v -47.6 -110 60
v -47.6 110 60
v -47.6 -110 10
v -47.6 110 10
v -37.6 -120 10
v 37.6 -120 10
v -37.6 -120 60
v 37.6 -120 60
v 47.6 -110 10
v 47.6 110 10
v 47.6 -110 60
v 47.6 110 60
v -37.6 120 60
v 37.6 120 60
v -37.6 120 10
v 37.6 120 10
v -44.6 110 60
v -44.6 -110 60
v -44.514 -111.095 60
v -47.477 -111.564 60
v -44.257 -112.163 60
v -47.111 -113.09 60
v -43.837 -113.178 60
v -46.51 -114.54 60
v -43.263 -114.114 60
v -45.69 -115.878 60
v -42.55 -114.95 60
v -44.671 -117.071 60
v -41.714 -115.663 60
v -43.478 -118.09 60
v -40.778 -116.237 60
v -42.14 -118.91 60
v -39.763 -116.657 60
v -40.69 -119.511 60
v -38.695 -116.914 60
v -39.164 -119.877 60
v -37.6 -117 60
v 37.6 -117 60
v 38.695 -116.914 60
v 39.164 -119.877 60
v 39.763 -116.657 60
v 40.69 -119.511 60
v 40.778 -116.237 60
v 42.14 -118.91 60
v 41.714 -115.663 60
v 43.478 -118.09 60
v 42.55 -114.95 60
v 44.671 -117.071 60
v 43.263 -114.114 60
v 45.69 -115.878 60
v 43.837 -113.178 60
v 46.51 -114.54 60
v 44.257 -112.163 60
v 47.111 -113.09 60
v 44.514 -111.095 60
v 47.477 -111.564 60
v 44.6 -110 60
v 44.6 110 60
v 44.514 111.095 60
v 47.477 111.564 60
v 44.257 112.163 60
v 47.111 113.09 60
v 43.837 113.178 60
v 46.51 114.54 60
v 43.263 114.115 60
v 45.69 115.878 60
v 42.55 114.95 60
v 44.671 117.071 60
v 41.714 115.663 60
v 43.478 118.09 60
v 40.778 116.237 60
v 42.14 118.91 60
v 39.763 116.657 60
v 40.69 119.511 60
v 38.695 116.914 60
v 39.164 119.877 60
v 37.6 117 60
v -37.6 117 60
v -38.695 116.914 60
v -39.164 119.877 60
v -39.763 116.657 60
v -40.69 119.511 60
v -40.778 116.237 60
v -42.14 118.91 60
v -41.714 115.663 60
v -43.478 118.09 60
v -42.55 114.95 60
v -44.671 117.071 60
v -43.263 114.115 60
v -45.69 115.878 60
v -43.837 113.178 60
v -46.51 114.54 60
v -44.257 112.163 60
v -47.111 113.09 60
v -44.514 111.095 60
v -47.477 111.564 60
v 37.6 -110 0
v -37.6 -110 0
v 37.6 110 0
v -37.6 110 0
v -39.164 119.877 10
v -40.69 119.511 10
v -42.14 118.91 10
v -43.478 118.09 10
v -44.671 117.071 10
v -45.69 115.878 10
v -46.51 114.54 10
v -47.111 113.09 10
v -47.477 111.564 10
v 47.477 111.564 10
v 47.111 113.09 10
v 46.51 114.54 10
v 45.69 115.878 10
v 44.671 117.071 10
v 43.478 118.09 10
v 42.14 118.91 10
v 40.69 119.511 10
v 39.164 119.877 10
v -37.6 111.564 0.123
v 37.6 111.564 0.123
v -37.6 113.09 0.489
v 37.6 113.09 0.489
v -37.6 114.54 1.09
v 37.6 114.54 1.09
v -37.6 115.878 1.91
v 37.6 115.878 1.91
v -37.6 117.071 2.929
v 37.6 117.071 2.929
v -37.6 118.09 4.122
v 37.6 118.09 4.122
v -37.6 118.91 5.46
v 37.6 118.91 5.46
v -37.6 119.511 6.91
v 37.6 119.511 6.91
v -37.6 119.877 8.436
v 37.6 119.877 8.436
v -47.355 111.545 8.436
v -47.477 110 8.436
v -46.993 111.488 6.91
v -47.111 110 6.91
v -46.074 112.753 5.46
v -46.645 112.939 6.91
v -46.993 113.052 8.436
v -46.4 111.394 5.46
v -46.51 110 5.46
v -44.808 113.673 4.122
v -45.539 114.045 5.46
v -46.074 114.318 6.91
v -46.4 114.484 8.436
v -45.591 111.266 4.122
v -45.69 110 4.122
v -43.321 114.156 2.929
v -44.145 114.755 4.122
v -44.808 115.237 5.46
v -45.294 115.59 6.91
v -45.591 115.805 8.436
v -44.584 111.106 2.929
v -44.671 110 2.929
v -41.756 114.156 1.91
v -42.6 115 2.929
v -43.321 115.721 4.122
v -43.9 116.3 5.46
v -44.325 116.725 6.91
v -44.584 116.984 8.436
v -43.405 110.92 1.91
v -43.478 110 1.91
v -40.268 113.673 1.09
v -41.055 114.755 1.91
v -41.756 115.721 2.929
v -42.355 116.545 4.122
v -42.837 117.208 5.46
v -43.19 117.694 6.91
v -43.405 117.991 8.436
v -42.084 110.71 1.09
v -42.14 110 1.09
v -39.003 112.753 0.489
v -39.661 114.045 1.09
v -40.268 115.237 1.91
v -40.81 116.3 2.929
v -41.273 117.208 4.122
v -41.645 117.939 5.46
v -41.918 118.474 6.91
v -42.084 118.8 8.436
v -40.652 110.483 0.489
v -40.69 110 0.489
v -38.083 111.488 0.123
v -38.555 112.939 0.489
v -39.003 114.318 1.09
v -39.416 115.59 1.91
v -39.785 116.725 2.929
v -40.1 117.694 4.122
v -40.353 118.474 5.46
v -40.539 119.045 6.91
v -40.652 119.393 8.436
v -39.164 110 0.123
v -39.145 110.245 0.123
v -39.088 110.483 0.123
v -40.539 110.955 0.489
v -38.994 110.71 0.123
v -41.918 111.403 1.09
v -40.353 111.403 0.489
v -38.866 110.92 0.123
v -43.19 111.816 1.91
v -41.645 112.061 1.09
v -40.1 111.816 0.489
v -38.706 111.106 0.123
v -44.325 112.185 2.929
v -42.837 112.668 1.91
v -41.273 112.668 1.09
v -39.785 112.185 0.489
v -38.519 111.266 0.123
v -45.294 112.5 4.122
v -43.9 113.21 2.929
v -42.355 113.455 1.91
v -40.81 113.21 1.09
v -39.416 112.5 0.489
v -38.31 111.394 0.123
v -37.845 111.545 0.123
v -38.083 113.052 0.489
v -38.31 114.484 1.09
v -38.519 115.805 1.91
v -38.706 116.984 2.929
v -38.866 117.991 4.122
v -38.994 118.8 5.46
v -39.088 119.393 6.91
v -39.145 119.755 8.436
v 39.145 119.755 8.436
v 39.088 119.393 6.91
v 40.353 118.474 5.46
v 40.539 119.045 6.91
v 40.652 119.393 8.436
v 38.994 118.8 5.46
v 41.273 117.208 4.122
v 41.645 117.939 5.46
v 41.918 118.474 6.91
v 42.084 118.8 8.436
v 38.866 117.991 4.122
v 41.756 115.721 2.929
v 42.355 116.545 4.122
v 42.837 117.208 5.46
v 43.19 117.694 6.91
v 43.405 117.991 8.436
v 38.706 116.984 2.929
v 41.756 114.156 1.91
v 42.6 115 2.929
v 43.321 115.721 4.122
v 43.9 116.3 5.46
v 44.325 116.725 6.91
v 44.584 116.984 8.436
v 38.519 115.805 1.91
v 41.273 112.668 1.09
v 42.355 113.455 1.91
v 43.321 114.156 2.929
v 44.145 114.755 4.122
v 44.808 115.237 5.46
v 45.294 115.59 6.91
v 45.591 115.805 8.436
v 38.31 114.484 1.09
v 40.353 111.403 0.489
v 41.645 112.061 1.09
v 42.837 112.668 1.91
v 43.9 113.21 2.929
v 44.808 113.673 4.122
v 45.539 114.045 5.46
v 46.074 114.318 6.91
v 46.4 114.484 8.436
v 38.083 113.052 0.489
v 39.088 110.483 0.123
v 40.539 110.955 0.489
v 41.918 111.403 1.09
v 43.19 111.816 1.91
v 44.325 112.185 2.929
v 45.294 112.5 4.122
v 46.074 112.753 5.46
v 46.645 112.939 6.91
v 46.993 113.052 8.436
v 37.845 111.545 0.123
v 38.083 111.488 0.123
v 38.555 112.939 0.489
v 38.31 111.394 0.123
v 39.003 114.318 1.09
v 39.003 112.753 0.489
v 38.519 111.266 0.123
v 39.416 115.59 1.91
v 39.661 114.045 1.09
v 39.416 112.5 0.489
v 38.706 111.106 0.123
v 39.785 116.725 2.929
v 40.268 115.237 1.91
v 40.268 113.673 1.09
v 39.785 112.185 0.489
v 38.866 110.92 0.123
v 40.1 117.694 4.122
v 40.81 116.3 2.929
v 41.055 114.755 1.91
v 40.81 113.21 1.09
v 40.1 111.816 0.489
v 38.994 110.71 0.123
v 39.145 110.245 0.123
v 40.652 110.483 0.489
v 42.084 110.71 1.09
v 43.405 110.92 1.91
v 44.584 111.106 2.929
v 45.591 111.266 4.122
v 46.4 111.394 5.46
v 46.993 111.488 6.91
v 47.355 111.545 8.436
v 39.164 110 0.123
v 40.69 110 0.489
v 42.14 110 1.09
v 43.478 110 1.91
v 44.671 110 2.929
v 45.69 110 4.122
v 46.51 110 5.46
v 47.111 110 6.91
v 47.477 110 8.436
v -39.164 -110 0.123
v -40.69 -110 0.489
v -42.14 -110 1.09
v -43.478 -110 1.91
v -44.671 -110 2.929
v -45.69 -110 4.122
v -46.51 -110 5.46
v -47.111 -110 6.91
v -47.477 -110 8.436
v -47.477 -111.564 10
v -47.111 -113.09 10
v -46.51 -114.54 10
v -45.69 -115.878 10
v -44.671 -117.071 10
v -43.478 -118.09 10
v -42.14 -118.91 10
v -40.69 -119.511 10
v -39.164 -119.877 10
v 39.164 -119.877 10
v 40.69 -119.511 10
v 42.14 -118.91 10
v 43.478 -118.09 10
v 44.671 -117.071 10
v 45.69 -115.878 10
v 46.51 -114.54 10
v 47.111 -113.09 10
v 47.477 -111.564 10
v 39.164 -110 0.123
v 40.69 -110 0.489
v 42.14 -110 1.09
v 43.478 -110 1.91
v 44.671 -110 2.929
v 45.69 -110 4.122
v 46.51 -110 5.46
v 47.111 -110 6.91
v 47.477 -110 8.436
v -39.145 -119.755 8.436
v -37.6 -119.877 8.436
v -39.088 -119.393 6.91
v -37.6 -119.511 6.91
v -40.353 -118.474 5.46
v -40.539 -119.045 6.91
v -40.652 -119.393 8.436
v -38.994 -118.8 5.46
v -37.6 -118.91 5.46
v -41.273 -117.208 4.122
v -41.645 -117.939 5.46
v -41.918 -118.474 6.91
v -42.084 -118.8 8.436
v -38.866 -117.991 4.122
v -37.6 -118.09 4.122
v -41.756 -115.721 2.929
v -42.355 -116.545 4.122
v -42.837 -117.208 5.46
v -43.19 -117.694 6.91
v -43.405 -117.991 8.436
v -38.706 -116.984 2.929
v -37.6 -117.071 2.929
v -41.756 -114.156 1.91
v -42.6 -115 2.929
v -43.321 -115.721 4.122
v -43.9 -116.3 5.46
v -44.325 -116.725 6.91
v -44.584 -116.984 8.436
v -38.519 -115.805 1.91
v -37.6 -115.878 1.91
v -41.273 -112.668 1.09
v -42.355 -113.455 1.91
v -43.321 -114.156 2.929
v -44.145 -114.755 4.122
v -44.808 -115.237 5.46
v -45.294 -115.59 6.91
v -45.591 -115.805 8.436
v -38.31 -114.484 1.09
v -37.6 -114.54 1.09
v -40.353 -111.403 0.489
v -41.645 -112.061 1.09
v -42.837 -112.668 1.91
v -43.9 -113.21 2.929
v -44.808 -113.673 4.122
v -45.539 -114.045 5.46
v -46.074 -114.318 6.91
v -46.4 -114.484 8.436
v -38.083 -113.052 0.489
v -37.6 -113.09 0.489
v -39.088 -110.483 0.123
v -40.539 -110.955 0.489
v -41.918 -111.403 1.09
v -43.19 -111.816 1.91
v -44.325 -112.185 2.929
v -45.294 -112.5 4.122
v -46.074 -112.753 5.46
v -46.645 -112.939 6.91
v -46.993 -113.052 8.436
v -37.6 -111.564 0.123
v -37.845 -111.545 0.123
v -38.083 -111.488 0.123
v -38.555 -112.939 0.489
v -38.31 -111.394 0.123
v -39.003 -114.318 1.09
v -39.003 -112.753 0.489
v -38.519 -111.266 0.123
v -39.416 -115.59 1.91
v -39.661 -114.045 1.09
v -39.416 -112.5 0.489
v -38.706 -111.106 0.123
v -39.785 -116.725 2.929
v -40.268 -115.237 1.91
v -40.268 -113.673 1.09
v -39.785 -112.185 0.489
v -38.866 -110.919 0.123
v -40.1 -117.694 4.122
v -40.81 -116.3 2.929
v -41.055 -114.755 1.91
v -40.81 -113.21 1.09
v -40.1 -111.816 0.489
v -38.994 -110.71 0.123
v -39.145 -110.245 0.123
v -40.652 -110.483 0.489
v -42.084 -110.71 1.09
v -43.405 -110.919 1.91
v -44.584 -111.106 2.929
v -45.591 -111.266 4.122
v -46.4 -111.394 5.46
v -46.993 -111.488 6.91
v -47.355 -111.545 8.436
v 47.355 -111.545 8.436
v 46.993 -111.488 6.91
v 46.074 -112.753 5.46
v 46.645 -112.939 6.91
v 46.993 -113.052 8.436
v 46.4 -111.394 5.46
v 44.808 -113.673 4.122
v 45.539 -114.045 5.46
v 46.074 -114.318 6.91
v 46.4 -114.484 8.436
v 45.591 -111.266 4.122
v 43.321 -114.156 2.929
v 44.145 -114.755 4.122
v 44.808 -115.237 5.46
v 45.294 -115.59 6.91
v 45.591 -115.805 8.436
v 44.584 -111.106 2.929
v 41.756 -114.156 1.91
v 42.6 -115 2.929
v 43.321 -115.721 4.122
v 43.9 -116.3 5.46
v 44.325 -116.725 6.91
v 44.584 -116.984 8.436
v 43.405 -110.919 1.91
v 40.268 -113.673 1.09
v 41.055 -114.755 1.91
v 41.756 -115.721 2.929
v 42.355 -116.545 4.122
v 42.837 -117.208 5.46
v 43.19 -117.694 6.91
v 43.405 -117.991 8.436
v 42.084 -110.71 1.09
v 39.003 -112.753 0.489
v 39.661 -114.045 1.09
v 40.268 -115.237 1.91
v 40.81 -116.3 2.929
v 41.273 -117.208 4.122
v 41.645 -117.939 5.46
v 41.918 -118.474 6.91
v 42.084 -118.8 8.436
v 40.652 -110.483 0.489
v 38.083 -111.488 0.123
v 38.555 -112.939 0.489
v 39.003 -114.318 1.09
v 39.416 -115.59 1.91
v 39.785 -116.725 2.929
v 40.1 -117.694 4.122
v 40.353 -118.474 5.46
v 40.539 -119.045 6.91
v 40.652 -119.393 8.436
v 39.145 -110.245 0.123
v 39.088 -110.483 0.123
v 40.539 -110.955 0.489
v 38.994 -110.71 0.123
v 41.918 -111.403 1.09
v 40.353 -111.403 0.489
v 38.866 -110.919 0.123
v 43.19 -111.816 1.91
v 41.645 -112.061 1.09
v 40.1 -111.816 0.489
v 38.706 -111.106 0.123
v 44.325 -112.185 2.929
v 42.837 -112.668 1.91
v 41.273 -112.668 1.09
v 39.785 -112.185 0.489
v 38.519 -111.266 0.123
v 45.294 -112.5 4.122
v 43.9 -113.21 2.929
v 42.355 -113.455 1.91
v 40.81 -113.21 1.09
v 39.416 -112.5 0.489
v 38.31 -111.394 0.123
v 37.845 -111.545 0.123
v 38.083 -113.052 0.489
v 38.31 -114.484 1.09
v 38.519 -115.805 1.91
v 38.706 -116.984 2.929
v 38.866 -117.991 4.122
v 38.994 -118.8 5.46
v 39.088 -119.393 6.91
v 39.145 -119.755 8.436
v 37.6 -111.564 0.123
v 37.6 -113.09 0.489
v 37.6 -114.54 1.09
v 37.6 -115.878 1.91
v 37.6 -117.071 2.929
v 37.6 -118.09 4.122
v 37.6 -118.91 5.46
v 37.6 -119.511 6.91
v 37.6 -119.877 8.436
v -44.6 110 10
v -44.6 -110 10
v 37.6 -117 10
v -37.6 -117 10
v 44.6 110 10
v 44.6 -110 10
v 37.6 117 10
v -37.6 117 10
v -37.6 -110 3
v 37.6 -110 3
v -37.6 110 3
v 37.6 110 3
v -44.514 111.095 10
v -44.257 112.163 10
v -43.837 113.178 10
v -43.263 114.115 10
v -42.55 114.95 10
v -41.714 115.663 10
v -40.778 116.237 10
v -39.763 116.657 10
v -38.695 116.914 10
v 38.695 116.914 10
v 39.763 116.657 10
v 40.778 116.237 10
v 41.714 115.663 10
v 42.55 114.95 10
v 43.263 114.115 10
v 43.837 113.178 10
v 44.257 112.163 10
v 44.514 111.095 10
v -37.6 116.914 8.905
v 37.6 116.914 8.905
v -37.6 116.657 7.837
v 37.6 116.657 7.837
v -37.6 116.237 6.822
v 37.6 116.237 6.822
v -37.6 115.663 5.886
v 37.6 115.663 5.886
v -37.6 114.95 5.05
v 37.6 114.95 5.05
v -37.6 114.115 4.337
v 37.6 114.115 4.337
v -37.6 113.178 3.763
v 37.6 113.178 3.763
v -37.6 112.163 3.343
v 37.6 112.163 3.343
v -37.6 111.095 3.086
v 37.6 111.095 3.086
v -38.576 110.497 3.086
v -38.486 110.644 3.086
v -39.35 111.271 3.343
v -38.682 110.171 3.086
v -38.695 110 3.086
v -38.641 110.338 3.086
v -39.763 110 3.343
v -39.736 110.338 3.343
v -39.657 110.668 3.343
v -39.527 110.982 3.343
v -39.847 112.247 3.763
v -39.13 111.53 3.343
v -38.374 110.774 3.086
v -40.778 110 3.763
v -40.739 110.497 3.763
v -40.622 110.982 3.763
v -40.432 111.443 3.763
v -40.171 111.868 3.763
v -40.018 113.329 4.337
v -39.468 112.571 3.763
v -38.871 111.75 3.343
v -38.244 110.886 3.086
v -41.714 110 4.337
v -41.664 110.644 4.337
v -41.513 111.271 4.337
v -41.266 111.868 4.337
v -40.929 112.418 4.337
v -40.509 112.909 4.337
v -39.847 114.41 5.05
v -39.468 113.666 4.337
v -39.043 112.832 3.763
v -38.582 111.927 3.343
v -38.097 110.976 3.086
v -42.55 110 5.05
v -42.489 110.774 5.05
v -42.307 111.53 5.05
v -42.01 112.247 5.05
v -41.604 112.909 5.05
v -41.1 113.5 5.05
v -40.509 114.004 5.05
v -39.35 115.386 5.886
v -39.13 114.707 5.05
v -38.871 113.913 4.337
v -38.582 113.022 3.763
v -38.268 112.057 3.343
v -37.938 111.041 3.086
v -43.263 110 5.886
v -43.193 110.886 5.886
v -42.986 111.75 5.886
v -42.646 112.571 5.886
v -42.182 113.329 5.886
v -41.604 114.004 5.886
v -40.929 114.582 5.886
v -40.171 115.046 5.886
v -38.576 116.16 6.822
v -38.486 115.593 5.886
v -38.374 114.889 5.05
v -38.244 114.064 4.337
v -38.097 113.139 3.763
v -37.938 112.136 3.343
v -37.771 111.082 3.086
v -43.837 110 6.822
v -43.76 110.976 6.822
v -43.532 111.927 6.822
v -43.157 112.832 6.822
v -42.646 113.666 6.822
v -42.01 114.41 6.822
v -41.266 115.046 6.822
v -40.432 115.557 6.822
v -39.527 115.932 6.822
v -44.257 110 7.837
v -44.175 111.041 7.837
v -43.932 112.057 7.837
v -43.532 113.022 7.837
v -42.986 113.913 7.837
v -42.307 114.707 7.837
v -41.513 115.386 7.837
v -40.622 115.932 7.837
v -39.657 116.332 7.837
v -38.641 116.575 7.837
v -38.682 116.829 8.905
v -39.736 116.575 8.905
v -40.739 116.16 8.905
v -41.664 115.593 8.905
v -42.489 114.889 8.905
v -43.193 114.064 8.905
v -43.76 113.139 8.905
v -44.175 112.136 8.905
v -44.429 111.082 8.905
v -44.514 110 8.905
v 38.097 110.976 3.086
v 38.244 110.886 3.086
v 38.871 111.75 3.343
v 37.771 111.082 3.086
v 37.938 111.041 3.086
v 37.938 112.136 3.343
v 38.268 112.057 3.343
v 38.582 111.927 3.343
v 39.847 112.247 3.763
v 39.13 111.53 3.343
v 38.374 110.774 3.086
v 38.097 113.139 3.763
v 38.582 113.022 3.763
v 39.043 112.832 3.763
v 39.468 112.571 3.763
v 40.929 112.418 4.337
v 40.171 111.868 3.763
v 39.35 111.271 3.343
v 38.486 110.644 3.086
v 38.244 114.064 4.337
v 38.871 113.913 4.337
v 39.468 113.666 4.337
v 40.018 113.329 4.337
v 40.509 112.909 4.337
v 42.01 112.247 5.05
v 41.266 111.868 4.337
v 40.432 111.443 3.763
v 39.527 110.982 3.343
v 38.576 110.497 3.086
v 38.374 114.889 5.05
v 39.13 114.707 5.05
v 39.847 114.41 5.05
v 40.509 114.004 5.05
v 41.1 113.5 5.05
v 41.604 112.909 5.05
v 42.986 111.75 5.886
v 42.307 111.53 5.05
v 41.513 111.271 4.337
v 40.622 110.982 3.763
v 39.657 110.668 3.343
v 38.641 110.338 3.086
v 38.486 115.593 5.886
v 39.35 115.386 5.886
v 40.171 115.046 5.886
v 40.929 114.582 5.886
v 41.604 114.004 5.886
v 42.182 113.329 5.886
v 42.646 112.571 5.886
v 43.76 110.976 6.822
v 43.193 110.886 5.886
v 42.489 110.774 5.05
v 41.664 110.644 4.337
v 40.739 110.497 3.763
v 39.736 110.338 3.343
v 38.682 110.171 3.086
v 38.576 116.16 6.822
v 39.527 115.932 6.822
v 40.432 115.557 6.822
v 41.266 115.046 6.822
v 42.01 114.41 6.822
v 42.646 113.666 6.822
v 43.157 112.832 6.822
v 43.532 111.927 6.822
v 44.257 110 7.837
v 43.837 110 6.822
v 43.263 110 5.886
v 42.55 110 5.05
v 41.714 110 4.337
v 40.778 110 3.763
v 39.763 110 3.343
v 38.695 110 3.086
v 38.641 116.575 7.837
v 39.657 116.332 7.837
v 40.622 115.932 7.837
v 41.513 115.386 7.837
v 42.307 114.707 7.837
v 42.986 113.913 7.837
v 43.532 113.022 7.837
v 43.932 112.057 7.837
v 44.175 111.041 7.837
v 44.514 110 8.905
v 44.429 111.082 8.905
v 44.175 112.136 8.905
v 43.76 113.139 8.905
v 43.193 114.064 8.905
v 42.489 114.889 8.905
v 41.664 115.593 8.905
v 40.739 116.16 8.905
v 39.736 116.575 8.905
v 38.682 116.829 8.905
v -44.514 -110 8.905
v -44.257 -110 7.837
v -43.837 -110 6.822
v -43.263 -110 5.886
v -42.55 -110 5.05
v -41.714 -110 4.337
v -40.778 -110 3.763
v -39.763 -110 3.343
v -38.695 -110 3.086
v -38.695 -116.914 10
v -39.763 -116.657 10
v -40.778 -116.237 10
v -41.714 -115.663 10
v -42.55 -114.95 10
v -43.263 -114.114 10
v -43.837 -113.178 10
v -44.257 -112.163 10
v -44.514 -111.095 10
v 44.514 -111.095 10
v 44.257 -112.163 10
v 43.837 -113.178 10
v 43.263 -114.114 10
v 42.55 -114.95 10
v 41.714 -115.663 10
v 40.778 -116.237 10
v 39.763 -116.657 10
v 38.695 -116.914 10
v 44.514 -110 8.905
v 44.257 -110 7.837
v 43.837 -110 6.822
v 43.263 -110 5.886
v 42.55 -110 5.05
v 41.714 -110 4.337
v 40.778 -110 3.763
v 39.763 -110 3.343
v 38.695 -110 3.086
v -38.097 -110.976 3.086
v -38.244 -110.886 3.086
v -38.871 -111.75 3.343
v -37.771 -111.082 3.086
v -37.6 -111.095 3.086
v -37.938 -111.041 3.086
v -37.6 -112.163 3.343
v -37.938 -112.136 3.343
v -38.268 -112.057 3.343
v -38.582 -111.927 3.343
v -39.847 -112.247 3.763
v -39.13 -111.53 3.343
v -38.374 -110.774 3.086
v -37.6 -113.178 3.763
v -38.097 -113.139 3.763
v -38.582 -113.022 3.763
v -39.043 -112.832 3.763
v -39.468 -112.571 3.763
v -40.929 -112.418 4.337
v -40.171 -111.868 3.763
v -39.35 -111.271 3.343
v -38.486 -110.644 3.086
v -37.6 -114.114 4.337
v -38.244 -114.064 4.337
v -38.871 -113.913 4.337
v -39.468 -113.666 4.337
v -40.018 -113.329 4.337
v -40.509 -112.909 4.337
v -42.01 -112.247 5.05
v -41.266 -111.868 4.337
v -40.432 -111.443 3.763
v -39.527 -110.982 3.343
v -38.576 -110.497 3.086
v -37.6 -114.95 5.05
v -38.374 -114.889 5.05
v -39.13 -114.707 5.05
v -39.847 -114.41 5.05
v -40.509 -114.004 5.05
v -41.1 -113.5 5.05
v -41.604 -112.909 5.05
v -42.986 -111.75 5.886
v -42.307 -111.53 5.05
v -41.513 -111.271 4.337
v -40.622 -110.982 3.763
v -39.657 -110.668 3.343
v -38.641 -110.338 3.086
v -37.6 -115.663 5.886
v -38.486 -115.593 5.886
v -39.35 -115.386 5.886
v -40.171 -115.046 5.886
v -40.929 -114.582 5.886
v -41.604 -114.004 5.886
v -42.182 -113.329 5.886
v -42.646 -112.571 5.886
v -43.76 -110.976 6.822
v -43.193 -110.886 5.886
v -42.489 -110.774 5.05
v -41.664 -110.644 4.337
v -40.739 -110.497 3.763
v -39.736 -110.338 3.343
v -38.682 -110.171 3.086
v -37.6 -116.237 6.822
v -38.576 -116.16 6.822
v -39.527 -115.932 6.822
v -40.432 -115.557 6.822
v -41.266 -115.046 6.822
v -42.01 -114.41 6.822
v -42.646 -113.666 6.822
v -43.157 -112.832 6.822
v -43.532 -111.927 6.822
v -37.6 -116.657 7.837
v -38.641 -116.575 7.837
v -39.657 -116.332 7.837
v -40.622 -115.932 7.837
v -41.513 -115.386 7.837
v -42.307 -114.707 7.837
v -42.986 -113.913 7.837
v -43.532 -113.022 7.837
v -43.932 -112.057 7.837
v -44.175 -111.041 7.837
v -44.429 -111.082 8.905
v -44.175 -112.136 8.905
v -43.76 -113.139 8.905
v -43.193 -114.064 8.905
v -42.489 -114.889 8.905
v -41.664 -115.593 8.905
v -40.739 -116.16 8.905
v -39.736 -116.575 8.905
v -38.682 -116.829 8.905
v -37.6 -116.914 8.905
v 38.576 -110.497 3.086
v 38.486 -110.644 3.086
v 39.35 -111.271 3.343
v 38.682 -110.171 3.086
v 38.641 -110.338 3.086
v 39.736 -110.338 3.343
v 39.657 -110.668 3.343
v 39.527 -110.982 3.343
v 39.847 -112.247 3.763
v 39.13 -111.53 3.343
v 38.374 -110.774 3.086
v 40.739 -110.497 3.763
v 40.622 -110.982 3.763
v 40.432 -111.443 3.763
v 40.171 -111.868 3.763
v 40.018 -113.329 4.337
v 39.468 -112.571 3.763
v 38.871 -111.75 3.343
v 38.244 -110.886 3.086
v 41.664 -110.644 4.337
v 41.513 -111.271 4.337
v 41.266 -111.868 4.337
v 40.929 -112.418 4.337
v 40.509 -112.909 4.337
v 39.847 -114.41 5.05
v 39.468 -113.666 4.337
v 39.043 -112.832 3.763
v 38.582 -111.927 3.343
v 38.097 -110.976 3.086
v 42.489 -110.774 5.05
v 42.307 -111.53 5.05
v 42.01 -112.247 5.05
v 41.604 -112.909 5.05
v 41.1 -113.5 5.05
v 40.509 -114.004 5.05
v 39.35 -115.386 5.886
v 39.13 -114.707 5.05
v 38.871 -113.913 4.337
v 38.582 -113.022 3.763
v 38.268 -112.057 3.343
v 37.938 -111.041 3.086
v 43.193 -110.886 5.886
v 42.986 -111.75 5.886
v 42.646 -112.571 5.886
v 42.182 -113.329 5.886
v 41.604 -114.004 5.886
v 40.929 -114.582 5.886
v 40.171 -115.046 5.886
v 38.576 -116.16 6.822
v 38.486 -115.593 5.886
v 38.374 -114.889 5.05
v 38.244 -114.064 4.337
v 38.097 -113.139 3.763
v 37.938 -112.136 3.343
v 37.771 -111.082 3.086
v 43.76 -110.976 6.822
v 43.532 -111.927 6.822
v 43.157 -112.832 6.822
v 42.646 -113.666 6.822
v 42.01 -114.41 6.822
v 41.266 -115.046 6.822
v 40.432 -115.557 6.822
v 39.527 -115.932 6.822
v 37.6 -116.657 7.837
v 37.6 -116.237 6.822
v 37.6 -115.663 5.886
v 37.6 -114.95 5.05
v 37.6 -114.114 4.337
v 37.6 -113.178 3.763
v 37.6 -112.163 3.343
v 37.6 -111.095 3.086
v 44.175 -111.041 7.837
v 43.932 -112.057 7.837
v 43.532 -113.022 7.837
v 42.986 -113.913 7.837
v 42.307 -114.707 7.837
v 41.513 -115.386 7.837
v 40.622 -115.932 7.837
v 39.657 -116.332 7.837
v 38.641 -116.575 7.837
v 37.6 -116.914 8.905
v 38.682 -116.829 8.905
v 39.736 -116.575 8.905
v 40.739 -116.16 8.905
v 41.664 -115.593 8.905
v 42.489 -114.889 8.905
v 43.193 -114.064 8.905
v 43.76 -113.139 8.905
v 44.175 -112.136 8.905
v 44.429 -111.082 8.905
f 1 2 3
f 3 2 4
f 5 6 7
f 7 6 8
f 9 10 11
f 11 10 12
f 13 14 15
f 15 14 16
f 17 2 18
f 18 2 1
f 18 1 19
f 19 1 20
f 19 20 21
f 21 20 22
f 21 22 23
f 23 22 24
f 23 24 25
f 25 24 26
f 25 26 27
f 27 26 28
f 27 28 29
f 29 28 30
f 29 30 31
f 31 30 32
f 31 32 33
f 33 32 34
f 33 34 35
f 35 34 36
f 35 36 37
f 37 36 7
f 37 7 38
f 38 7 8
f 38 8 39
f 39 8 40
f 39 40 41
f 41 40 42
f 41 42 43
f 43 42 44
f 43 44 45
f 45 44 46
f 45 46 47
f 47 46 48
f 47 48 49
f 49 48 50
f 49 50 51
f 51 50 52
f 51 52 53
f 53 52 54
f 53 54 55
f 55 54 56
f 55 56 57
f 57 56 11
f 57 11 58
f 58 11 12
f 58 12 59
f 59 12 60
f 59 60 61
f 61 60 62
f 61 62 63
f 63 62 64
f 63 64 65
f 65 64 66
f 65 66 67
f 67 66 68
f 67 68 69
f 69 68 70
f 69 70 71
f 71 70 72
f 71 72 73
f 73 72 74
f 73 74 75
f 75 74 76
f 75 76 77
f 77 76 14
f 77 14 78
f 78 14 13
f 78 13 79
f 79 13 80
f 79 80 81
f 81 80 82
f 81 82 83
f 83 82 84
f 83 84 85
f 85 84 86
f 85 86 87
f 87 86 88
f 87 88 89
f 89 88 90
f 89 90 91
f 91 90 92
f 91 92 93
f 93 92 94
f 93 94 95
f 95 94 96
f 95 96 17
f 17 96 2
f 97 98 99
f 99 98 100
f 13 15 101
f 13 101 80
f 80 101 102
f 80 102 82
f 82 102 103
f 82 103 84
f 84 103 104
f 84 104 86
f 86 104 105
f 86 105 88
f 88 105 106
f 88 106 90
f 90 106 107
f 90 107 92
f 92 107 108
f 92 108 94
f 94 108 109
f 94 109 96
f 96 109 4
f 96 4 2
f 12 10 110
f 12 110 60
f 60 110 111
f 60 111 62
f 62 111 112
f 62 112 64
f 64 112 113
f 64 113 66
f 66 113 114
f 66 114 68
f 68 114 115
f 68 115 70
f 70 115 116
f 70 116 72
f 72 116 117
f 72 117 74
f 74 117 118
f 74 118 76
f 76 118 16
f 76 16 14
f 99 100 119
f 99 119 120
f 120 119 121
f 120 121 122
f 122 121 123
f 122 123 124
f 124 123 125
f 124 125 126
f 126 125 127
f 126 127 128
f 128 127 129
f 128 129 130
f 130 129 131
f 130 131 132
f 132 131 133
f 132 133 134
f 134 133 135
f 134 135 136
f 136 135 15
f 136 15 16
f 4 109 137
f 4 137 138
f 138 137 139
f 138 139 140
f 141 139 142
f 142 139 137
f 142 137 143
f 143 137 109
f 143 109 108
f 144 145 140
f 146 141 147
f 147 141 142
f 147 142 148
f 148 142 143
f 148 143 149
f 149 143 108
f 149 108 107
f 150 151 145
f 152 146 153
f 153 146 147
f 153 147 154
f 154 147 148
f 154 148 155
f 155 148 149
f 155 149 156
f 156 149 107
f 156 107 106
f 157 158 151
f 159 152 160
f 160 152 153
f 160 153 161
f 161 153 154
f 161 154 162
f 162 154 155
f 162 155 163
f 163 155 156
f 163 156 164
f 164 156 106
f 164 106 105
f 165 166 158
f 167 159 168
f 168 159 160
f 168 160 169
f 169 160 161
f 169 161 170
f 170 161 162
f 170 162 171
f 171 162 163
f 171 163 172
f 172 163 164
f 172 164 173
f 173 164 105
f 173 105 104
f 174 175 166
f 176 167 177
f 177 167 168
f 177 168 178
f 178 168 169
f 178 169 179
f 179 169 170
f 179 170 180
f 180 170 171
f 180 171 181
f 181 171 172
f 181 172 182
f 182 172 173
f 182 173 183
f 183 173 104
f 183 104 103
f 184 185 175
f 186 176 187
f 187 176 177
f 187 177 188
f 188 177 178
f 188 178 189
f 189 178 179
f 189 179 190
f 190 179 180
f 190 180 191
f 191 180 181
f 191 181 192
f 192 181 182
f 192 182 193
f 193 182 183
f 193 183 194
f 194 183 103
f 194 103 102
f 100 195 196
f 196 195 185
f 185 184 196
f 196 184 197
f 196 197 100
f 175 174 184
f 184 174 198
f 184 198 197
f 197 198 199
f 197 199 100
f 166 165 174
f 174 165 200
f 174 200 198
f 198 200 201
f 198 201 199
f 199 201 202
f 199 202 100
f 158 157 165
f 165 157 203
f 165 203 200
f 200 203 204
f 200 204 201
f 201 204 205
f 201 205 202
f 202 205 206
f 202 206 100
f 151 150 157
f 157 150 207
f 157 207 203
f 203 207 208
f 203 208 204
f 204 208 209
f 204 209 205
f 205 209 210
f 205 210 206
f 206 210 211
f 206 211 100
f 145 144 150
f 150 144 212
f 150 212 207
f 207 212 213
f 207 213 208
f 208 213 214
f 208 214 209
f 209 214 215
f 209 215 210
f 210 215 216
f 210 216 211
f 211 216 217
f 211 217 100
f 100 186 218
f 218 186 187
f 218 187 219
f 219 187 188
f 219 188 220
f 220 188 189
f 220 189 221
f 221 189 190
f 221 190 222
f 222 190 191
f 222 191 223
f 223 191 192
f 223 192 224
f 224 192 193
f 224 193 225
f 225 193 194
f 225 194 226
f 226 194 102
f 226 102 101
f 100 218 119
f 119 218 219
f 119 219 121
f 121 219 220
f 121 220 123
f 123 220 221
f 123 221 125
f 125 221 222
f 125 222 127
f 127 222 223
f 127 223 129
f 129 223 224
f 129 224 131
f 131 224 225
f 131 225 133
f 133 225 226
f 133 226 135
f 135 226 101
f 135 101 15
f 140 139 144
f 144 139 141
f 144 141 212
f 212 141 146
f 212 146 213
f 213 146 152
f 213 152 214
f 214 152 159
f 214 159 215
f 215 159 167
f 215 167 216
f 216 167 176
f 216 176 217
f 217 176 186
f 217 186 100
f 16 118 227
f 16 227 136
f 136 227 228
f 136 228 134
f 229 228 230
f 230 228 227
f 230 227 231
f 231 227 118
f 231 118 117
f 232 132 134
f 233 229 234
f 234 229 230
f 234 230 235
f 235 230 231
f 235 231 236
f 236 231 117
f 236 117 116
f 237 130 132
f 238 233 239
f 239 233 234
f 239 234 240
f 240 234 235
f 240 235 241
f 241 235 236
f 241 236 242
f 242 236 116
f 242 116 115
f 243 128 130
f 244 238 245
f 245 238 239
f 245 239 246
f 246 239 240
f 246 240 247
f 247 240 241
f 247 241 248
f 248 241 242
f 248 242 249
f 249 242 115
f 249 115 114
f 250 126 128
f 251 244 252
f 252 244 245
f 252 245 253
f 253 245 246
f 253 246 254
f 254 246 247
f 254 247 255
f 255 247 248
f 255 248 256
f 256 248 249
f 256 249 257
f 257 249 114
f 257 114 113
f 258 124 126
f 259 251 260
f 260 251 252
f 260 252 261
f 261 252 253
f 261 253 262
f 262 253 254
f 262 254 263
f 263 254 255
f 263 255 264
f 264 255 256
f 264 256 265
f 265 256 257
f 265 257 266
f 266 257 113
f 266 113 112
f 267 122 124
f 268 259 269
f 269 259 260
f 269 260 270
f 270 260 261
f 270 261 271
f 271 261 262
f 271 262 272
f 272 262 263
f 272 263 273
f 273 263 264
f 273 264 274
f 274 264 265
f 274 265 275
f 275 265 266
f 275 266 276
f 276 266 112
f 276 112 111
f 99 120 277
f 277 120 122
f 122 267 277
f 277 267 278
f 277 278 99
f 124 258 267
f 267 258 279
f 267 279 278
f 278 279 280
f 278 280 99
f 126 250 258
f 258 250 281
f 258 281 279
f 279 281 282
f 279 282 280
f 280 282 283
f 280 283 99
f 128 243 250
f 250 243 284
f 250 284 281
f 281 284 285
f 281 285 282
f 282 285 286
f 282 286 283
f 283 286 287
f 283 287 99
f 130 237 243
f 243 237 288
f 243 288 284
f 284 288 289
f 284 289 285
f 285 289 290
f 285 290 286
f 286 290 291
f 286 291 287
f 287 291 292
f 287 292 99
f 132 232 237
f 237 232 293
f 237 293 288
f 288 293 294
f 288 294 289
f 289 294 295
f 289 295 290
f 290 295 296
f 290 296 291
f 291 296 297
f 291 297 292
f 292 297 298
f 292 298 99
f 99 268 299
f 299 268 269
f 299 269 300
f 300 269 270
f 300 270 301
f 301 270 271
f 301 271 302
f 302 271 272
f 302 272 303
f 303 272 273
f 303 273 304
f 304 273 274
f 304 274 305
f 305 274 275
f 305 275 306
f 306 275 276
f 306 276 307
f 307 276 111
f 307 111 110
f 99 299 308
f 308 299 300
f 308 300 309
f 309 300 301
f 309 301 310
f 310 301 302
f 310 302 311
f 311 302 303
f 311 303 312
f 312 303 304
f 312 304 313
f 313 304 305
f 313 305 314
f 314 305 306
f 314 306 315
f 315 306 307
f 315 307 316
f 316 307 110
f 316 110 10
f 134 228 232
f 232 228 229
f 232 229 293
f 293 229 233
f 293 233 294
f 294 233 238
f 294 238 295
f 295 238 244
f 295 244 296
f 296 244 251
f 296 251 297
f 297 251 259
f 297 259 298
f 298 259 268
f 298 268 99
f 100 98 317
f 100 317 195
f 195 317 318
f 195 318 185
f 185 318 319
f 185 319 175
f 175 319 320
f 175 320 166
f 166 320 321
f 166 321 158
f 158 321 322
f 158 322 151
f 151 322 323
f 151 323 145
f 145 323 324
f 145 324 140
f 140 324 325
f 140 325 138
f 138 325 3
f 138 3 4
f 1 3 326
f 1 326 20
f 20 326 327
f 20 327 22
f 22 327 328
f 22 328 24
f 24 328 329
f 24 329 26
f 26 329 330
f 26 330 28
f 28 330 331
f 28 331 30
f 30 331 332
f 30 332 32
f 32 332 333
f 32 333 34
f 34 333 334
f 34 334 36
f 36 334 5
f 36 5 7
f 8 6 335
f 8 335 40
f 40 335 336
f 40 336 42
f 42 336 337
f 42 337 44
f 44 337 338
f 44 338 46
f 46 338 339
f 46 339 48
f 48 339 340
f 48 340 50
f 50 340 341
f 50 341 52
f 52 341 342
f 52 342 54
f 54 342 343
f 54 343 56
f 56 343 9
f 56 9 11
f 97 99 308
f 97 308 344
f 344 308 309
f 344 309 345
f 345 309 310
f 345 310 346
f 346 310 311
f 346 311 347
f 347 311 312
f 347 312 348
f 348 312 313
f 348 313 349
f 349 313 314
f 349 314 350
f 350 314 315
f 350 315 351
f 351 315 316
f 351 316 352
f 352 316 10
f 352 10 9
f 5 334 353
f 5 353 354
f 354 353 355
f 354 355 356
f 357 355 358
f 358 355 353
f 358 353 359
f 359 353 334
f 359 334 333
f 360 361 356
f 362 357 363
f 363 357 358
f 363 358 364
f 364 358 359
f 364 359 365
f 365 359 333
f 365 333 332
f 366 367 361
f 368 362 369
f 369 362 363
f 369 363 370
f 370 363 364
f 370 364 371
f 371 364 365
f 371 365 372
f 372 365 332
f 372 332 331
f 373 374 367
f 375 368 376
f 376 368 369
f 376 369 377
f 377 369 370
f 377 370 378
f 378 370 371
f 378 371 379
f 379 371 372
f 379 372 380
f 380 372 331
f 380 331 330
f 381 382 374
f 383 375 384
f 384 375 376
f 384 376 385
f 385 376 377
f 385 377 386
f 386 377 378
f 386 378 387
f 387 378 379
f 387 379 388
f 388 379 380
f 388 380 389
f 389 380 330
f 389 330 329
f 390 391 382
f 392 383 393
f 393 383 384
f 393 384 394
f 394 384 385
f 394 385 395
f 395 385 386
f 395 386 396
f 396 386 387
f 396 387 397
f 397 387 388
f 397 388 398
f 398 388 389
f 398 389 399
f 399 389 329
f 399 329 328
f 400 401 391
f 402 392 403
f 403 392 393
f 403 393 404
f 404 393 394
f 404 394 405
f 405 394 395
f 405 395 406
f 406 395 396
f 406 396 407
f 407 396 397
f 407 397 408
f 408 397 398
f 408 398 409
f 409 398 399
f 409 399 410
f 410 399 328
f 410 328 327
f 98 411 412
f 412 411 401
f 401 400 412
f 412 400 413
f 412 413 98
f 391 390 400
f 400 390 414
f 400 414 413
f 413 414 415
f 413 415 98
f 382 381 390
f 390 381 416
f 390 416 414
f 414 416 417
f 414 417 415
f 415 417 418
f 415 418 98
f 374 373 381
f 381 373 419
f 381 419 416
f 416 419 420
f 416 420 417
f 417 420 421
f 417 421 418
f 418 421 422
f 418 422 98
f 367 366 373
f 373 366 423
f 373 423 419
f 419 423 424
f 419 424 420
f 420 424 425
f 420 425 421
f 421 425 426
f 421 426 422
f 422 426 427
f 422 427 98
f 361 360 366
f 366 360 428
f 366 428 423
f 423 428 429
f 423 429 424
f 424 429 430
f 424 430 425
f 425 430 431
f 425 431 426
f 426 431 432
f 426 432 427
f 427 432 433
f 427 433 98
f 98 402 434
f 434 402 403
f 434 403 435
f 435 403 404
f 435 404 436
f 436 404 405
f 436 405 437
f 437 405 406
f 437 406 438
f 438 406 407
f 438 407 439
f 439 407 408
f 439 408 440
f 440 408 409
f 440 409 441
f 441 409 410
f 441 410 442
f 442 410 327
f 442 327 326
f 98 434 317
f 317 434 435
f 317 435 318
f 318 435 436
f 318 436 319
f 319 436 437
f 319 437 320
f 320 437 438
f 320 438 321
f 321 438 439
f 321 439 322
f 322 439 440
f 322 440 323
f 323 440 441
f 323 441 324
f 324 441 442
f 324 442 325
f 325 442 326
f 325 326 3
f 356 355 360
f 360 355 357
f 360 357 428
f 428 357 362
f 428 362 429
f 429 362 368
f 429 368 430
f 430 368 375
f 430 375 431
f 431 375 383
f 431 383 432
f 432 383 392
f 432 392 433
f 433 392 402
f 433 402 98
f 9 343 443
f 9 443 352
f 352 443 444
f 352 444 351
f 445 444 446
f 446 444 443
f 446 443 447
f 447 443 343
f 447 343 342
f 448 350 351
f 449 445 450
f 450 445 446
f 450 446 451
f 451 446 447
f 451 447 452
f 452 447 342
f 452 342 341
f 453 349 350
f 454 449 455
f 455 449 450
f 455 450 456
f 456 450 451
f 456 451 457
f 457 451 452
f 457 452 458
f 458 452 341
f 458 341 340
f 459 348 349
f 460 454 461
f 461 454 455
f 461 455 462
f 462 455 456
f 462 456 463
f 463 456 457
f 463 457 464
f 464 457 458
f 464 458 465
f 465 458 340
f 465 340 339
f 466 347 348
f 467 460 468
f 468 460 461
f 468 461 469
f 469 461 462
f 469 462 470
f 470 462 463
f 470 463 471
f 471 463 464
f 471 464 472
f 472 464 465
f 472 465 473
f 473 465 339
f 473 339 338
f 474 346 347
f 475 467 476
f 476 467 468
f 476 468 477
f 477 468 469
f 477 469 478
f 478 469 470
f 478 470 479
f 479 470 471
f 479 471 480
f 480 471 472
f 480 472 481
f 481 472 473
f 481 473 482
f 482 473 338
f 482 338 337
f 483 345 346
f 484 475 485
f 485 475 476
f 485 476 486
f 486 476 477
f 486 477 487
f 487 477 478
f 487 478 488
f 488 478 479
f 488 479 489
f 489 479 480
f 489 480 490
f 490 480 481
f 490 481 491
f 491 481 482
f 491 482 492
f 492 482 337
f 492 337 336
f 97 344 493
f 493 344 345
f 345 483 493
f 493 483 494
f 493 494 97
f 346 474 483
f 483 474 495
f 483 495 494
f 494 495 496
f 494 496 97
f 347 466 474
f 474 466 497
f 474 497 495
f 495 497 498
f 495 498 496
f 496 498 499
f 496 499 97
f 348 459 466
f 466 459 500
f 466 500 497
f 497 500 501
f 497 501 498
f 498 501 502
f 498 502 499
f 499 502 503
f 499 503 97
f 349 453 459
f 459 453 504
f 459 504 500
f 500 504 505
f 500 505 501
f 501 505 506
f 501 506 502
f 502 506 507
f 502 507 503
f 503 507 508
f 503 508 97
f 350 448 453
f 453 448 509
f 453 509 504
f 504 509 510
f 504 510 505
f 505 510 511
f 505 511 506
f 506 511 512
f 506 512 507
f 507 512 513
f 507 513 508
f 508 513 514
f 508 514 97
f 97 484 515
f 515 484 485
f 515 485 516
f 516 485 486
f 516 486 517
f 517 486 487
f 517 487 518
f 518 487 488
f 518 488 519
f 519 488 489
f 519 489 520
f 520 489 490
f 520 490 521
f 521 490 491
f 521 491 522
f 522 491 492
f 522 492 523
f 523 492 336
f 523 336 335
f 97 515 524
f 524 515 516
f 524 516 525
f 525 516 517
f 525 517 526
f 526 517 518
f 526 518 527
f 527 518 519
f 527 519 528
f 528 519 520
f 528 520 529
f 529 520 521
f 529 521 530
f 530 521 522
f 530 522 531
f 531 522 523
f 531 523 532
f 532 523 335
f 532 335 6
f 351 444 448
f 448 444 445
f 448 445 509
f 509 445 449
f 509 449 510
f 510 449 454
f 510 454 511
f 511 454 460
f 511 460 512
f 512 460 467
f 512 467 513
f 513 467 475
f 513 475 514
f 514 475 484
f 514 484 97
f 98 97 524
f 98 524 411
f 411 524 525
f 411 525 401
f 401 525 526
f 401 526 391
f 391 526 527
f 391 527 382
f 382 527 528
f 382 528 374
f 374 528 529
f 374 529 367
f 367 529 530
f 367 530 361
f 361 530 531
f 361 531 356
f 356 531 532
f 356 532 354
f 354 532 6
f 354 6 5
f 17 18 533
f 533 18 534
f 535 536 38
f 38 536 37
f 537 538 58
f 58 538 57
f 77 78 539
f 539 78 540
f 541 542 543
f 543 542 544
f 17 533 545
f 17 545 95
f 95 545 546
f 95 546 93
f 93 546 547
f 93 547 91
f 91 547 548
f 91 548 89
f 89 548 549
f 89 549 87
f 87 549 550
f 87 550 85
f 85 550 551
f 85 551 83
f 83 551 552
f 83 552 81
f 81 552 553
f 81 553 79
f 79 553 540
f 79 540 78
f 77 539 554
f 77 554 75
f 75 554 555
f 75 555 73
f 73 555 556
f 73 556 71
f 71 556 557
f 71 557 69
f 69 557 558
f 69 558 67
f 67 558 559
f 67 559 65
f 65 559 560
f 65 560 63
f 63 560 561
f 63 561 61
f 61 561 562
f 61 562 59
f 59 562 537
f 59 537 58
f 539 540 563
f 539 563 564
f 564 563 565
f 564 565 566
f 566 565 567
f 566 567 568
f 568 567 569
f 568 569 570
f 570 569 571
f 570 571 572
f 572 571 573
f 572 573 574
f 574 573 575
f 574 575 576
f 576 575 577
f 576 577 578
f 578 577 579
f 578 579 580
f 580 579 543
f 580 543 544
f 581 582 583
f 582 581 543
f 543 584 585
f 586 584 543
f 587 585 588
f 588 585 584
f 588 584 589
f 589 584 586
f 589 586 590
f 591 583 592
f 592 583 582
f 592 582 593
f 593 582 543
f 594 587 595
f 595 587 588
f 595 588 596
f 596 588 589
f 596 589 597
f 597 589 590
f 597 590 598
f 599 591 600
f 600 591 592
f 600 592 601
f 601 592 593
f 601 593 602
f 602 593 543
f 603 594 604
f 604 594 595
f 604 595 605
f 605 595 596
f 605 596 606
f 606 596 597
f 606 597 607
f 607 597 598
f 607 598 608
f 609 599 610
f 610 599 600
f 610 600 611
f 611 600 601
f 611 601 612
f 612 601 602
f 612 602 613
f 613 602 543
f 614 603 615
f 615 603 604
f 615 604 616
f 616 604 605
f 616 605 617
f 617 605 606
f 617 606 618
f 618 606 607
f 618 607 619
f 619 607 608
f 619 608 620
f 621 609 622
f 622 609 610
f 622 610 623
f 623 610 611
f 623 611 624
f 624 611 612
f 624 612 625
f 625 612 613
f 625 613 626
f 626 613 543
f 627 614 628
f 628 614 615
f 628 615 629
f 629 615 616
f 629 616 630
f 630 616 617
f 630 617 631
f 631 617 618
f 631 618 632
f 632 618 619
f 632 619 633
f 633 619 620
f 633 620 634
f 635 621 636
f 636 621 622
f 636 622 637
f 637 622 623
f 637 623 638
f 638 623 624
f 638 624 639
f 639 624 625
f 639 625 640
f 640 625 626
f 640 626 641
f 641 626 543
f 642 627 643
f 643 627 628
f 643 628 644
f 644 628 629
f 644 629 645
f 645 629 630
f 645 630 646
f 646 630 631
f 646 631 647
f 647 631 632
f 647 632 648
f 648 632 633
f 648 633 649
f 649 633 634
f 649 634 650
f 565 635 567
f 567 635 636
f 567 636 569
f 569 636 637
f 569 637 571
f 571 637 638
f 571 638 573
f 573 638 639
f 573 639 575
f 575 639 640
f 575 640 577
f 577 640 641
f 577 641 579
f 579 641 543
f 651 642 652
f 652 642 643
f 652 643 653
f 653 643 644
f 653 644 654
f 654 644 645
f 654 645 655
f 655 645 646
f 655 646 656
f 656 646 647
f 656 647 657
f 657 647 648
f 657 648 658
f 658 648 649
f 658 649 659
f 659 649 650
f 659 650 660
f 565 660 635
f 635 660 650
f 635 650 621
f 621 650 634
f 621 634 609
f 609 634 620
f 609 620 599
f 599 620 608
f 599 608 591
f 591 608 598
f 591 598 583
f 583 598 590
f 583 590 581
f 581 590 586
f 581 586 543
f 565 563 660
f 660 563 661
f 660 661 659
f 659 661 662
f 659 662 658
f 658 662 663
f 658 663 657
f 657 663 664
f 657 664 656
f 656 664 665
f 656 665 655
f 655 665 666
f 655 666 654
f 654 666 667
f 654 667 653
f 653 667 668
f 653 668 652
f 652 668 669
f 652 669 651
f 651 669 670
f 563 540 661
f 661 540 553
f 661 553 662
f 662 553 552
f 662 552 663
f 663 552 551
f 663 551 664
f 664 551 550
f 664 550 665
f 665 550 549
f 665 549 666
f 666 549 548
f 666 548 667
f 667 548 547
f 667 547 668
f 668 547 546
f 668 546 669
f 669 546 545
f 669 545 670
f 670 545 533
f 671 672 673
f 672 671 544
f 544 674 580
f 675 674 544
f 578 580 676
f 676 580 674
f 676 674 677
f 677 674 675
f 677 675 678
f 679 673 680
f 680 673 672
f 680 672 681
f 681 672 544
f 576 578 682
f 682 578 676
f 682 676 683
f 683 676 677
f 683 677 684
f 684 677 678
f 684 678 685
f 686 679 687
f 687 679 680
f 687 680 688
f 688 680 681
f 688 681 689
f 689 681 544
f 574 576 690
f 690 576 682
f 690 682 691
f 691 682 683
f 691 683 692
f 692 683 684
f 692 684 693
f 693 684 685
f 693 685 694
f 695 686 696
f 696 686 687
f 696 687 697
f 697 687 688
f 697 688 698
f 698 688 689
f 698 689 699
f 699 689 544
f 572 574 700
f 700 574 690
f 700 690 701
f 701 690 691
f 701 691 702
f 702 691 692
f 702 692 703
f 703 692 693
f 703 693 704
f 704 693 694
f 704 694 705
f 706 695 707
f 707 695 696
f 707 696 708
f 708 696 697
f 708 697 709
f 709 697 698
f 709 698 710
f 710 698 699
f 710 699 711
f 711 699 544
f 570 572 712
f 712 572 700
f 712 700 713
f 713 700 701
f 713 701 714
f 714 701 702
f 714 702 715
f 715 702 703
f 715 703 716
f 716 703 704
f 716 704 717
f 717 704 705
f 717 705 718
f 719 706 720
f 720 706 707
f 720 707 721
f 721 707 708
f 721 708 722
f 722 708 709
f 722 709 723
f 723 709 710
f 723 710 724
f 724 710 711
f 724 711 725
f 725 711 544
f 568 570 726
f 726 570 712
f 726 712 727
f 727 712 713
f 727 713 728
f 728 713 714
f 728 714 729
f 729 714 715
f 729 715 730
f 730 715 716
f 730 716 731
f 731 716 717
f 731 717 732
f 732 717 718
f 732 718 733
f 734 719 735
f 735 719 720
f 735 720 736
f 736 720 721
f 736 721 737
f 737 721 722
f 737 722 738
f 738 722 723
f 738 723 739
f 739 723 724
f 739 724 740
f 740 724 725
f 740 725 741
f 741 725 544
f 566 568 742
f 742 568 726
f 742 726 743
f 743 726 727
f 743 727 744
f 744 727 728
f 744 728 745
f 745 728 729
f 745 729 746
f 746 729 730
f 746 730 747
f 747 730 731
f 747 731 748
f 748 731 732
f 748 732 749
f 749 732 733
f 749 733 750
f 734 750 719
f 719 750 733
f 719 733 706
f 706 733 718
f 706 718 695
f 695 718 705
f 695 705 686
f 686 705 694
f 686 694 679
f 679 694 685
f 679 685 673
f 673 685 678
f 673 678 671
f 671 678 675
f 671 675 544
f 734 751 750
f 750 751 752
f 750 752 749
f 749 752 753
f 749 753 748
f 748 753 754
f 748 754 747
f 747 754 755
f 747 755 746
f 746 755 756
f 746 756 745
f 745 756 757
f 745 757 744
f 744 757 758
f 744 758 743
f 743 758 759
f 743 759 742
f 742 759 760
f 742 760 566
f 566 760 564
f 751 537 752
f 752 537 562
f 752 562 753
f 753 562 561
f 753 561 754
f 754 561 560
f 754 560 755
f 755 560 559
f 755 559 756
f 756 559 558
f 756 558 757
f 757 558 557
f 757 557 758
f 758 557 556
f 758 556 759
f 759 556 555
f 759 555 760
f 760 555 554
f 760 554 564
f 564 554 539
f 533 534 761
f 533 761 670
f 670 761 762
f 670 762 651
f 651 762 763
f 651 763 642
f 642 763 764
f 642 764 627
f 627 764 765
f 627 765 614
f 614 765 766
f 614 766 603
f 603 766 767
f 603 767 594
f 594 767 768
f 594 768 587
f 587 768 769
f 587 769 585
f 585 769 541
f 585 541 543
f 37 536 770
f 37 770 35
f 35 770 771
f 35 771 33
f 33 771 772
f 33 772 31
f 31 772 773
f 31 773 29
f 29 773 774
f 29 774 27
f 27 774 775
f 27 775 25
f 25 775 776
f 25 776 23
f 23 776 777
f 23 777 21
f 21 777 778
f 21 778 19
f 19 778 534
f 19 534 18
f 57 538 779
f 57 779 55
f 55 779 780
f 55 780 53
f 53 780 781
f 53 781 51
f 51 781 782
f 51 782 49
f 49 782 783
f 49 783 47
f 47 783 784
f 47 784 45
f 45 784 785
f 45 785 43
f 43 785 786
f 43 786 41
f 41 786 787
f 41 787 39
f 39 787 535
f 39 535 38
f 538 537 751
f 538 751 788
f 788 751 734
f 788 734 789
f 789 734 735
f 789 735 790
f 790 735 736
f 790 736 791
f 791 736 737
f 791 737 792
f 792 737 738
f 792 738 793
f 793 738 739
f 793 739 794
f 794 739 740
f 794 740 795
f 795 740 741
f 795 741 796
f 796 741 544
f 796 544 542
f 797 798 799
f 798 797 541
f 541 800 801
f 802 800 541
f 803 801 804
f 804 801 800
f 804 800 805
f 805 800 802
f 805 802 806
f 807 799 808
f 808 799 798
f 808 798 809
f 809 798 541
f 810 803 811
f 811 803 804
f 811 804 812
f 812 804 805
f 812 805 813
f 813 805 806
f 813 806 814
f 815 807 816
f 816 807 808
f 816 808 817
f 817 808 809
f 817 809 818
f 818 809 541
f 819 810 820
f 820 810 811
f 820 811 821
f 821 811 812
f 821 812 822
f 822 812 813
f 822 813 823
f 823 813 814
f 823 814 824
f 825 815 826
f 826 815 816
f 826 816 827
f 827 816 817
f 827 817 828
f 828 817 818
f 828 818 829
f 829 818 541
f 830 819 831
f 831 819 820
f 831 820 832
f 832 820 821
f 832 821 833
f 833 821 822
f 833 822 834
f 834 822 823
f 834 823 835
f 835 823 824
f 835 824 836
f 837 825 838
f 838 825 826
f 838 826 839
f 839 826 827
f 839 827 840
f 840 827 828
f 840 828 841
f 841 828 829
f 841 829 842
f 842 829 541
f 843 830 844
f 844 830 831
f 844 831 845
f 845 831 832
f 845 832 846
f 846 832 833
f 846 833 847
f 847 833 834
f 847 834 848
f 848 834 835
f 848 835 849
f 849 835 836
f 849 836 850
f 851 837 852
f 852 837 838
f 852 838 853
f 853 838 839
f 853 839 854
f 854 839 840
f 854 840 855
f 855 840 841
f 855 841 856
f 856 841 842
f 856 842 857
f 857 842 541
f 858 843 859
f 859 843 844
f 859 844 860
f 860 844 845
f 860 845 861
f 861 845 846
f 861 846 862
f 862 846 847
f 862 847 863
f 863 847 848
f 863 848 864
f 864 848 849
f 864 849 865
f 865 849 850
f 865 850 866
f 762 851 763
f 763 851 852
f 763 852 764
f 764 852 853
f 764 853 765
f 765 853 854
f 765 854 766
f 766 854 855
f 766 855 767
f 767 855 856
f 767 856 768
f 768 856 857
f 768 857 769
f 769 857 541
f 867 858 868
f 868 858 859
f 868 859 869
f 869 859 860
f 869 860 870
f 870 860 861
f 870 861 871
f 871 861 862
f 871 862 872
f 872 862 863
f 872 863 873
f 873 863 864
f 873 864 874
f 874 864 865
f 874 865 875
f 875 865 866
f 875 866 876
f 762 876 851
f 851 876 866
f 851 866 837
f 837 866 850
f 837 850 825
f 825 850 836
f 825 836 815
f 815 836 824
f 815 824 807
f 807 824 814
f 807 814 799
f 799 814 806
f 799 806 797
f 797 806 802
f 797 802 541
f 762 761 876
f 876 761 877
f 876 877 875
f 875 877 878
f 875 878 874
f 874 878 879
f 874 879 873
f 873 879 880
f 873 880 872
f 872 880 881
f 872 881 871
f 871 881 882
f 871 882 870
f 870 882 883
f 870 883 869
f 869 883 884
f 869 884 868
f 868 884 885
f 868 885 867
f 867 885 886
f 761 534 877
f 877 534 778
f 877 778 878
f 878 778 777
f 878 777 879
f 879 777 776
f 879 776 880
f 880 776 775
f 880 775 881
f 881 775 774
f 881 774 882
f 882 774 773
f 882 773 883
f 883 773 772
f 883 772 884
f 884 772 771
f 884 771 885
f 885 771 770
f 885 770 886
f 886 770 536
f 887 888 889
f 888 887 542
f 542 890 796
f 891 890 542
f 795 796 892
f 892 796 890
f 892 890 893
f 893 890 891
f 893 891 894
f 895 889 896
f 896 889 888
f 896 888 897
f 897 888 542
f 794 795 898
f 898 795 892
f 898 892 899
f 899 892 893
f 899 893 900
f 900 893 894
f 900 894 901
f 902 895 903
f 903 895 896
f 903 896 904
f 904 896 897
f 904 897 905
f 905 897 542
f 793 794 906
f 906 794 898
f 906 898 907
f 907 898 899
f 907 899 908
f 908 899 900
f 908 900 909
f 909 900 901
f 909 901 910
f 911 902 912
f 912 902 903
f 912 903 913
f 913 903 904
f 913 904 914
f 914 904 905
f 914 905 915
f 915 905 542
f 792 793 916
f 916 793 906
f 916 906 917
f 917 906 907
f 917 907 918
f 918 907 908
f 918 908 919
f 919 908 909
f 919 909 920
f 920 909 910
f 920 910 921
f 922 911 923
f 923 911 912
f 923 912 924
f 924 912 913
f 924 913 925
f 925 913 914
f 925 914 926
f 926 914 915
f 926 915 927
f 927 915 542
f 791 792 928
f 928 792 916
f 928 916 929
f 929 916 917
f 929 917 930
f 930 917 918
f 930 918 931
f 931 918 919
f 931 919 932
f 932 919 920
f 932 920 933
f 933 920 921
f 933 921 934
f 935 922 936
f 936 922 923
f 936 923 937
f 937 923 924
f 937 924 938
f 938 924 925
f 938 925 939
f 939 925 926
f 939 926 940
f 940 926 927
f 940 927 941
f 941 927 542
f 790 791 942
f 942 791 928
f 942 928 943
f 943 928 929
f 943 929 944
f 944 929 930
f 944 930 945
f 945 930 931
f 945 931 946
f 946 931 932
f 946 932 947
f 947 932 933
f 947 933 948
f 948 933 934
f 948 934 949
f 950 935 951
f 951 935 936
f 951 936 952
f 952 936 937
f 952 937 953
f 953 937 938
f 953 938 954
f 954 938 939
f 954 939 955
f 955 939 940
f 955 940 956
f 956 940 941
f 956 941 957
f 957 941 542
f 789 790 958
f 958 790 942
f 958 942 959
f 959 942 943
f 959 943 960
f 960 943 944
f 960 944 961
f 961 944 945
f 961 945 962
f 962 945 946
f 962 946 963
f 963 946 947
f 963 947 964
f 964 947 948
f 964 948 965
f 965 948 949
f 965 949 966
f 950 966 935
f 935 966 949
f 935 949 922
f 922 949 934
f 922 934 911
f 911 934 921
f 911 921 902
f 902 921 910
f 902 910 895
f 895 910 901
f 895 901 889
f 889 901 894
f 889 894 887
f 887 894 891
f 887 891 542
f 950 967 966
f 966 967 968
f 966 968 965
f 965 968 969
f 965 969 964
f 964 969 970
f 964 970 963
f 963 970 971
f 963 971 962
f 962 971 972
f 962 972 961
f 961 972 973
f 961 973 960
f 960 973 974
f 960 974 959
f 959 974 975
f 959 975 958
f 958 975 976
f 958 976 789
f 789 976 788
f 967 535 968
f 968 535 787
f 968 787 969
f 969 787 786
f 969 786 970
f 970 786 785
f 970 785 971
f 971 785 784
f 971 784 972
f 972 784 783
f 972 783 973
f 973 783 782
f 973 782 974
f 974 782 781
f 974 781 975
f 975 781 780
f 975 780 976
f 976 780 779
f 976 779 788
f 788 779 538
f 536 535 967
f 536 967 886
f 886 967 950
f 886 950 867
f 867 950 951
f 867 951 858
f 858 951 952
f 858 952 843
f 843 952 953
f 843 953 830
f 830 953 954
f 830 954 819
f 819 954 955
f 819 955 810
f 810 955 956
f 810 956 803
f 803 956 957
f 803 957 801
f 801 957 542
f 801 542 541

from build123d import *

# Parameters (mm, degrees)
CROQUIS1_W              = 95.2
CROQUIS1_H              = 240
SALIENTE_EXTRUIR1_DEPTH = 60
REDONDEO1_R             = 10
VACIADO1_T              = -3


with BuildPart() as part:
    # Croquis1 → Saliente-Extruir1 (new body)
    with BuildSketch(Plane.XY):
        Rectangle(CROQUIS1_W, CROQUIS1_H)
    extrude(amount=SALIENTE_EXTRUIR1_DEPTH)

    # Redondeo1
    redondeo1_edges = [part.edges().sort_by_distance(p)[0] for p in [
        (0, 120, 0),
        (47.6, 0, 0),
        (0, -120, 0),
        (-47.6, 0, 0),
        (-47.6, 120, 30),
        (47.6, 120, 30),
        (47.6, -120, 30),
        (-47.6, -120, 30),
    ]]
    fillet(redondeo1_edges, radius=REDONDEO1_R)

    # Vaciado1
    vaciado1_openings = [part.faces().sort_by_distance(p)[0] for p in [
        (0, 0, 60),
    ]]
    offset(amount=VACIADO1_T, openings=vaciado1_openings, kind=Kind.INTERSECTION)


solid = part.part
